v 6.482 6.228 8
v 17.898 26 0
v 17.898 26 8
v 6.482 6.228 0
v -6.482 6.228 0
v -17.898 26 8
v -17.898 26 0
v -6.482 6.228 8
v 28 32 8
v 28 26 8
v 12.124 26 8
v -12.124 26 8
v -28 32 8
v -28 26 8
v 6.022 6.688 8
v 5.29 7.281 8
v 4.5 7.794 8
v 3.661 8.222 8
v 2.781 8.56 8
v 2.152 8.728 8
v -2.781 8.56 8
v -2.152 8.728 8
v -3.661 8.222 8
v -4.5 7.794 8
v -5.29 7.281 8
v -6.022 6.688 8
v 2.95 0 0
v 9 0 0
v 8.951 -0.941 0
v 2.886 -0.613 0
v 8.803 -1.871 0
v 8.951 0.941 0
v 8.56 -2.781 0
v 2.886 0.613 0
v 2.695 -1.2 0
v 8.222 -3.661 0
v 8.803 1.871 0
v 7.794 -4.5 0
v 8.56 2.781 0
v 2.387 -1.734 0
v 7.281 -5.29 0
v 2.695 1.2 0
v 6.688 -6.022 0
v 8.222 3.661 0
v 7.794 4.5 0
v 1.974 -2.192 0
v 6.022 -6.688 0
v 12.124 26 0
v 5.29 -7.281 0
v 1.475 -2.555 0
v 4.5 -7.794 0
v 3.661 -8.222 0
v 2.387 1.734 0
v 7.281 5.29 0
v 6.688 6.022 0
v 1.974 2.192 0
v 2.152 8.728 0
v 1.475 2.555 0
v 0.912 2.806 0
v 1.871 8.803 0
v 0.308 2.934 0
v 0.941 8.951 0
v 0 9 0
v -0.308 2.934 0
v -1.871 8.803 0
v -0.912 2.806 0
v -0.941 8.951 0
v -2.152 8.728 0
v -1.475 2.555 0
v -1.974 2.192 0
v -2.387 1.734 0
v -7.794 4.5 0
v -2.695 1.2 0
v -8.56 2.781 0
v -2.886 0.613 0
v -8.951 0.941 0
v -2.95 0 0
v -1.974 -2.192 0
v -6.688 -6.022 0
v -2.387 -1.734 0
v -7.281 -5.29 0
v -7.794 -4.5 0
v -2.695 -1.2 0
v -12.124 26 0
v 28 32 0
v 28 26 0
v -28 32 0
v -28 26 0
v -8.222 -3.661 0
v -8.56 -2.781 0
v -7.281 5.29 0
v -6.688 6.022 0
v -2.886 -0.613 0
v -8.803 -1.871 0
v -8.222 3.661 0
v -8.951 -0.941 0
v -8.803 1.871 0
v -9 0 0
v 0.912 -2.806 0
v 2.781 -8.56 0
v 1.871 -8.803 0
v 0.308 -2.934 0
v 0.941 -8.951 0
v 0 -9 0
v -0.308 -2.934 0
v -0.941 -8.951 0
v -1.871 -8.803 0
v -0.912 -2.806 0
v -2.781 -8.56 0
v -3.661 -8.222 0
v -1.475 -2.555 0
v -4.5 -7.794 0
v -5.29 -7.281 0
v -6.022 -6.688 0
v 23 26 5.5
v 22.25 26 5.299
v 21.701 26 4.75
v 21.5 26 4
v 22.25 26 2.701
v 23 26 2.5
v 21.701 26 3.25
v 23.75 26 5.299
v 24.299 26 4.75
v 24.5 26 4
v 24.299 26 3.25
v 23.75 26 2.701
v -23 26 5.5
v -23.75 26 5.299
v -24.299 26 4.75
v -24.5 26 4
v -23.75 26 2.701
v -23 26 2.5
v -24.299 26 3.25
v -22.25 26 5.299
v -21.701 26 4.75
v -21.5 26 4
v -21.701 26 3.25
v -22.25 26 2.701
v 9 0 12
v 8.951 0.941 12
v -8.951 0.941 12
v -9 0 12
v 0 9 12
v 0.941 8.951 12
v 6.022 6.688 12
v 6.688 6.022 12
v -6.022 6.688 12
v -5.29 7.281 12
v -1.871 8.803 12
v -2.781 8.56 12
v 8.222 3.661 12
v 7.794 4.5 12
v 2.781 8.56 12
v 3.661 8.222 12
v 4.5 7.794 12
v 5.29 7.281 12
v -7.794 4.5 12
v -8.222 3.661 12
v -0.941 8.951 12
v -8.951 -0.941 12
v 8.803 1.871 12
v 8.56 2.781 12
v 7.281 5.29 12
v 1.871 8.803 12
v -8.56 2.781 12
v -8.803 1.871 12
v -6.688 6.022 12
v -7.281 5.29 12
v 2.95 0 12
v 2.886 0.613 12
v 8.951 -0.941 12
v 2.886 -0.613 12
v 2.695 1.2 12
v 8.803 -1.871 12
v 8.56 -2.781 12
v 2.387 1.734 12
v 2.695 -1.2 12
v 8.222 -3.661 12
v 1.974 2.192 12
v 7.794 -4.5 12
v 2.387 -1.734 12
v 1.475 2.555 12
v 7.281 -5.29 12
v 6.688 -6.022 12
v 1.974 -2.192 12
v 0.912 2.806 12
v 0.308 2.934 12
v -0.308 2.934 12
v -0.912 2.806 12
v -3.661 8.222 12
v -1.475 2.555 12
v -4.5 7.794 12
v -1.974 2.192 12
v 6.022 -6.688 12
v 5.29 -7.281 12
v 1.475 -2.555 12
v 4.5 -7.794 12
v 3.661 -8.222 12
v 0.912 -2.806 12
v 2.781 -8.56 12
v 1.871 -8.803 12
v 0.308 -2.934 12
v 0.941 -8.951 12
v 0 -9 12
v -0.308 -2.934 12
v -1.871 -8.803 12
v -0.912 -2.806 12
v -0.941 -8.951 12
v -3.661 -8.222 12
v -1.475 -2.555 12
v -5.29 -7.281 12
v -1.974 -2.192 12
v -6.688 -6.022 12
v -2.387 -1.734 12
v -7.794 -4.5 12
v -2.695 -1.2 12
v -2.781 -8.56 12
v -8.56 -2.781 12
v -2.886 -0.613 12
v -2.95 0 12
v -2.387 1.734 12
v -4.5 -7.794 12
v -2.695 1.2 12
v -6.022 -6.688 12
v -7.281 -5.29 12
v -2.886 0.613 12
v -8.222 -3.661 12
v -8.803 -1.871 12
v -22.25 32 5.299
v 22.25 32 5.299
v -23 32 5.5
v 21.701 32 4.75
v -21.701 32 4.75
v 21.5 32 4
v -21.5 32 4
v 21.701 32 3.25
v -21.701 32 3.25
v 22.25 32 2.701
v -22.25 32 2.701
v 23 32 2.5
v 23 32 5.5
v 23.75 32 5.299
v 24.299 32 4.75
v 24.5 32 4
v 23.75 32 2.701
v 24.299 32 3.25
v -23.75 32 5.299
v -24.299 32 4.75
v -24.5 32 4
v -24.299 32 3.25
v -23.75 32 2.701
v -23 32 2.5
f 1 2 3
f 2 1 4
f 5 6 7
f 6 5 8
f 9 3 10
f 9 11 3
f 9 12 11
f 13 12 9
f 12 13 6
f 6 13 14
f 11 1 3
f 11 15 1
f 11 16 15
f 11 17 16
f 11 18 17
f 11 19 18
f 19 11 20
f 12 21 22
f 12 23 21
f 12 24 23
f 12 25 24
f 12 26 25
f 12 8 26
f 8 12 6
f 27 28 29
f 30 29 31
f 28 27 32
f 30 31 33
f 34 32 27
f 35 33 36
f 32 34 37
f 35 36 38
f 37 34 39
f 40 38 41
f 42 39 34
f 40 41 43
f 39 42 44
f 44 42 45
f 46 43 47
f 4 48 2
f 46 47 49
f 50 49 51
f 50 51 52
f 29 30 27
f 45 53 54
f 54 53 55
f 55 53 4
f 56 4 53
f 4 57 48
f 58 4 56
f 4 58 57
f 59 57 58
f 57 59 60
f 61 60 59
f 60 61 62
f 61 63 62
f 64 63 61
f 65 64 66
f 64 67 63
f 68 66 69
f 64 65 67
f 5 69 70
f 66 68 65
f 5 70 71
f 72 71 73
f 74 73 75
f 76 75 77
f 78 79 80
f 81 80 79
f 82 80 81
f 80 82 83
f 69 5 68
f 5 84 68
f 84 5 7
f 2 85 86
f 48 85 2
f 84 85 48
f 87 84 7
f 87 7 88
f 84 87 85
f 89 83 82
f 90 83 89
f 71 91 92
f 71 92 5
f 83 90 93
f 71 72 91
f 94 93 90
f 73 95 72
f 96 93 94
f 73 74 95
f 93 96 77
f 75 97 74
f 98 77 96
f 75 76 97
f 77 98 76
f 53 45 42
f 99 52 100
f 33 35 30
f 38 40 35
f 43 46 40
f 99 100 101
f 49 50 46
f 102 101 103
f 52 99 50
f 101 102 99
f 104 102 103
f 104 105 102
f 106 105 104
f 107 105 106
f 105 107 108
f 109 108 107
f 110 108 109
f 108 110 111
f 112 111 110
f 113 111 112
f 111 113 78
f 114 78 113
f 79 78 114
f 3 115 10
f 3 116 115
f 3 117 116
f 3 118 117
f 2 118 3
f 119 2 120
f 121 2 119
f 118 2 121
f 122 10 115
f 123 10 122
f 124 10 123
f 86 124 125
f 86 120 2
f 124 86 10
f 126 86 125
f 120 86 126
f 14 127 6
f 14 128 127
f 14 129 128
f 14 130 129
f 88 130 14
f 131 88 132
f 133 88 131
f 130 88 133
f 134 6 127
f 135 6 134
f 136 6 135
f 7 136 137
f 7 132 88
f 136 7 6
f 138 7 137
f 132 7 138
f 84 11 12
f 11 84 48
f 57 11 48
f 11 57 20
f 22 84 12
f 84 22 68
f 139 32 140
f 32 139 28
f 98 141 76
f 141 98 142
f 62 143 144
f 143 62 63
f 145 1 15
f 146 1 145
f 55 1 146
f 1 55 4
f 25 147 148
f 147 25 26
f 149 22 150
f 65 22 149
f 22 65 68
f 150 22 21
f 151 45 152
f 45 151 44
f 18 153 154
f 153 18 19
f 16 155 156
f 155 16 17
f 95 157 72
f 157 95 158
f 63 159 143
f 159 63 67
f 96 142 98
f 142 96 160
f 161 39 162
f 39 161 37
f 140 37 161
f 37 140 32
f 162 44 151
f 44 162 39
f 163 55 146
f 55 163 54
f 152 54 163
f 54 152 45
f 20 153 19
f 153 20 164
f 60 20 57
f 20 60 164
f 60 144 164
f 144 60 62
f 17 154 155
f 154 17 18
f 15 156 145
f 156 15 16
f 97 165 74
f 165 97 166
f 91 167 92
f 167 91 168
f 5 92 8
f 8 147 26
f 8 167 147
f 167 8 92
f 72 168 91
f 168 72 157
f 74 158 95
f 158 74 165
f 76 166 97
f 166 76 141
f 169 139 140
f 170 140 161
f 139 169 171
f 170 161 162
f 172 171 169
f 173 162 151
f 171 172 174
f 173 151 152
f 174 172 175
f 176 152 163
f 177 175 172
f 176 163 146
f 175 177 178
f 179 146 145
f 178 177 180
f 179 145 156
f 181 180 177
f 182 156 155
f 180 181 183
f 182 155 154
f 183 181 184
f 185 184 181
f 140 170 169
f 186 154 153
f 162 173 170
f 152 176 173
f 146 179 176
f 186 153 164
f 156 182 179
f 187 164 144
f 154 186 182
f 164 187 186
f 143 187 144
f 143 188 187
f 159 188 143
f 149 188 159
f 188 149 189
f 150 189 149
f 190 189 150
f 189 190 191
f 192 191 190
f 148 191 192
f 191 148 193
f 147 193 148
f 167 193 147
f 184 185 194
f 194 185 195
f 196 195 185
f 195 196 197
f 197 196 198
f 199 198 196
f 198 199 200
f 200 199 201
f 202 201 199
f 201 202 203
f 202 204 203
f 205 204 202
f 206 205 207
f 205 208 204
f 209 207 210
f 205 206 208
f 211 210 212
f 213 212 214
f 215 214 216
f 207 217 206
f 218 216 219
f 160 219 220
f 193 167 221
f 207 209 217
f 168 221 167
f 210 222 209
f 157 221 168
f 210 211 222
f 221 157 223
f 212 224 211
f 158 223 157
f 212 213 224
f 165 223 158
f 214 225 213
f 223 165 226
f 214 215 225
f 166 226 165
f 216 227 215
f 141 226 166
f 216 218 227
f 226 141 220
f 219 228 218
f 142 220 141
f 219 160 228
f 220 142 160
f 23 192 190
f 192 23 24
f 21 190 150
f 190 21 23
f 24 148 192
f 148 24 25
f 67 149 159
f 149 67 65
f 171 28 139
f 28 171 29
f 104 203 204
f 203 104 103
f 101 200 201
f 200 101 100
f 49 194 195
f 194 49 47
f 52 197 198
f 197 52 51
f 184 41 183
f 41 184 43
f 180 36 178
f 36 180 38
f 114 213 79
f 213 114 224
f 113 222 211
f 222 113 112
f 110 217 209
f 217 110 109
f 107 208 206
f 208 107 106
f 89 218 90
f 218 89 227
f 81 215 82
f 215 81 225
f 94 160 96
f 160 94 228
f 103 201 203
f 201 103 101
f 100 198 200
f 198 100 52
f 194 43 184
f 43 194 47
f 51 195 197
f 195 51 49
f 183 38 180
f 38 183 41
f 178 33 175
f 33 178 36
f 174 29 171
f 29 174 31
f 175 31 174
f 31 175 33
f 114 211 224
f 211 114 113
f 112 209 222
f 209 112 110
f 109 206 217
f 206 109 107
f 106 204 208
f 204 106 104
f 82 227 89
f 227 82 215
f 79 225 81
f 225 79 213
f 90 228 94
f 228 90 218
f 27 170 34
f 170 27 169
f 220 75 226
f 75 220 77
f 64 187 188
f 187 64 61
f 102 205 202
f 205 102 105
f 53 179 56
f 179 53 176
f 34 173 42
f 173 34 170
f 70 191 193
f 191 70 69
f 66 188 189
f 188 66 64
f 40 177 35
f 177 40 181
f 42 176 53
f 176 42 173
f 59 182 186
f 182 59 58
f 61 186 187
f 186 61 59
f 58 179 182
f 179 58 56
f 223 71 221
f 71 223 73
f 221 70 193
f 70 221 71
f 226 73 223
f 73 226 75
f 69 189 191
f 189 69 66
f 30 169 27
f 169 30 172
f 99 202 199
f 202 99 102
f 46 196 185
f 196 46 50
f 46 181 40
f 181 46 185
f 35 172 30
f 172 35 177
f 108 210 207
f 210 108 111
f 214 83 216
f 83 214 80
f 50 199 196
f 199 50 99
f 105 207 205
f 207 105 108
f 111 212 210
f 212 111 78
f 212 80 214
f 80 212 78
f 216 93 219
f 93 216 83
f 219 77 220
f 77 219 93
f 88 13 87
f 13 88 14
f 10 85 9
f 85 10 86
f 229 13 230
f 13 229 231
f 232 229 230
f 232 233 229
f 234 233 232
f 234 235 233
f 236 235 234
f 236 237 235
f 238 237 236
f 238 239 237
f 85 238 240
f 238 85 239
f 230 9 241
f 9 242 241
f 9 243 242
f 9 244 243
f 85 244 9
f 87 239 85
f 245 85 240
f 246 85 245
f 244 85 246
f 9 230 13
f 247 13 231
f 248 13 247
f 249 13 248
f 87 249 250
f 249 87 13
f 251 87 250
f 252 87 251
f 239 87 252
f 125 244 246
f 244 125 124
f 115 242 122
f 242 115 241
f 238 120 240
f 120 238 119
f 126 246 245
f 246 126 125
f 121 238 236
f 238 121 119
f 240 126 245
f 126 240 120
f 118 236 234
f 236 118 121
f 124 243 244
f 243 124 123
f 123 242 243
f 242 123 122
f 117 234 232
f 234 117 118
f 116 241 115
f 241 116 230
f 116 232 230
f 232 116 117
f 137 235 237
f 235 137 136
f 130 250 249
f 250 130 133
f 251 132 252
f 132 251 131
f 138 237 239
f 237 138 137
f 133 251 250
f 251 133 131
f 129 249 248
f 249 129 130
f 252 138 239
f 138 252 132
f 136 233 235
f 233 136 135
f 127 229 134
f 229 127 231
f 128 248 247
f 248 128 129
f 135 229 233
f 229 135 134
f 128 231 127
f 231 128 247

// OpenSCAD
difference(){
union(){
cylinder(d=18,h=12,$fn=60);
translate([0,19,0])rotate([0,0,-90])
difference(){
cylinder(d=48,h=8,$fn=3);
translate([0,0,-1])cylinder(d=28,h=20,$fn=3);
}
}
translate([0,0,-1])cylinder(d=5.9,h=20,$fn=30);
}

difference(){
translate([-28,26,0])cube([56,6,8]);
translate([23,0,4])rotate([-90,0,0])
cylinder(d=3,h=50,$fn=12);
translate([-23,0,4])rotate([-90,0,0])
cylinder(d=3,h=50,$fn=12);
}
